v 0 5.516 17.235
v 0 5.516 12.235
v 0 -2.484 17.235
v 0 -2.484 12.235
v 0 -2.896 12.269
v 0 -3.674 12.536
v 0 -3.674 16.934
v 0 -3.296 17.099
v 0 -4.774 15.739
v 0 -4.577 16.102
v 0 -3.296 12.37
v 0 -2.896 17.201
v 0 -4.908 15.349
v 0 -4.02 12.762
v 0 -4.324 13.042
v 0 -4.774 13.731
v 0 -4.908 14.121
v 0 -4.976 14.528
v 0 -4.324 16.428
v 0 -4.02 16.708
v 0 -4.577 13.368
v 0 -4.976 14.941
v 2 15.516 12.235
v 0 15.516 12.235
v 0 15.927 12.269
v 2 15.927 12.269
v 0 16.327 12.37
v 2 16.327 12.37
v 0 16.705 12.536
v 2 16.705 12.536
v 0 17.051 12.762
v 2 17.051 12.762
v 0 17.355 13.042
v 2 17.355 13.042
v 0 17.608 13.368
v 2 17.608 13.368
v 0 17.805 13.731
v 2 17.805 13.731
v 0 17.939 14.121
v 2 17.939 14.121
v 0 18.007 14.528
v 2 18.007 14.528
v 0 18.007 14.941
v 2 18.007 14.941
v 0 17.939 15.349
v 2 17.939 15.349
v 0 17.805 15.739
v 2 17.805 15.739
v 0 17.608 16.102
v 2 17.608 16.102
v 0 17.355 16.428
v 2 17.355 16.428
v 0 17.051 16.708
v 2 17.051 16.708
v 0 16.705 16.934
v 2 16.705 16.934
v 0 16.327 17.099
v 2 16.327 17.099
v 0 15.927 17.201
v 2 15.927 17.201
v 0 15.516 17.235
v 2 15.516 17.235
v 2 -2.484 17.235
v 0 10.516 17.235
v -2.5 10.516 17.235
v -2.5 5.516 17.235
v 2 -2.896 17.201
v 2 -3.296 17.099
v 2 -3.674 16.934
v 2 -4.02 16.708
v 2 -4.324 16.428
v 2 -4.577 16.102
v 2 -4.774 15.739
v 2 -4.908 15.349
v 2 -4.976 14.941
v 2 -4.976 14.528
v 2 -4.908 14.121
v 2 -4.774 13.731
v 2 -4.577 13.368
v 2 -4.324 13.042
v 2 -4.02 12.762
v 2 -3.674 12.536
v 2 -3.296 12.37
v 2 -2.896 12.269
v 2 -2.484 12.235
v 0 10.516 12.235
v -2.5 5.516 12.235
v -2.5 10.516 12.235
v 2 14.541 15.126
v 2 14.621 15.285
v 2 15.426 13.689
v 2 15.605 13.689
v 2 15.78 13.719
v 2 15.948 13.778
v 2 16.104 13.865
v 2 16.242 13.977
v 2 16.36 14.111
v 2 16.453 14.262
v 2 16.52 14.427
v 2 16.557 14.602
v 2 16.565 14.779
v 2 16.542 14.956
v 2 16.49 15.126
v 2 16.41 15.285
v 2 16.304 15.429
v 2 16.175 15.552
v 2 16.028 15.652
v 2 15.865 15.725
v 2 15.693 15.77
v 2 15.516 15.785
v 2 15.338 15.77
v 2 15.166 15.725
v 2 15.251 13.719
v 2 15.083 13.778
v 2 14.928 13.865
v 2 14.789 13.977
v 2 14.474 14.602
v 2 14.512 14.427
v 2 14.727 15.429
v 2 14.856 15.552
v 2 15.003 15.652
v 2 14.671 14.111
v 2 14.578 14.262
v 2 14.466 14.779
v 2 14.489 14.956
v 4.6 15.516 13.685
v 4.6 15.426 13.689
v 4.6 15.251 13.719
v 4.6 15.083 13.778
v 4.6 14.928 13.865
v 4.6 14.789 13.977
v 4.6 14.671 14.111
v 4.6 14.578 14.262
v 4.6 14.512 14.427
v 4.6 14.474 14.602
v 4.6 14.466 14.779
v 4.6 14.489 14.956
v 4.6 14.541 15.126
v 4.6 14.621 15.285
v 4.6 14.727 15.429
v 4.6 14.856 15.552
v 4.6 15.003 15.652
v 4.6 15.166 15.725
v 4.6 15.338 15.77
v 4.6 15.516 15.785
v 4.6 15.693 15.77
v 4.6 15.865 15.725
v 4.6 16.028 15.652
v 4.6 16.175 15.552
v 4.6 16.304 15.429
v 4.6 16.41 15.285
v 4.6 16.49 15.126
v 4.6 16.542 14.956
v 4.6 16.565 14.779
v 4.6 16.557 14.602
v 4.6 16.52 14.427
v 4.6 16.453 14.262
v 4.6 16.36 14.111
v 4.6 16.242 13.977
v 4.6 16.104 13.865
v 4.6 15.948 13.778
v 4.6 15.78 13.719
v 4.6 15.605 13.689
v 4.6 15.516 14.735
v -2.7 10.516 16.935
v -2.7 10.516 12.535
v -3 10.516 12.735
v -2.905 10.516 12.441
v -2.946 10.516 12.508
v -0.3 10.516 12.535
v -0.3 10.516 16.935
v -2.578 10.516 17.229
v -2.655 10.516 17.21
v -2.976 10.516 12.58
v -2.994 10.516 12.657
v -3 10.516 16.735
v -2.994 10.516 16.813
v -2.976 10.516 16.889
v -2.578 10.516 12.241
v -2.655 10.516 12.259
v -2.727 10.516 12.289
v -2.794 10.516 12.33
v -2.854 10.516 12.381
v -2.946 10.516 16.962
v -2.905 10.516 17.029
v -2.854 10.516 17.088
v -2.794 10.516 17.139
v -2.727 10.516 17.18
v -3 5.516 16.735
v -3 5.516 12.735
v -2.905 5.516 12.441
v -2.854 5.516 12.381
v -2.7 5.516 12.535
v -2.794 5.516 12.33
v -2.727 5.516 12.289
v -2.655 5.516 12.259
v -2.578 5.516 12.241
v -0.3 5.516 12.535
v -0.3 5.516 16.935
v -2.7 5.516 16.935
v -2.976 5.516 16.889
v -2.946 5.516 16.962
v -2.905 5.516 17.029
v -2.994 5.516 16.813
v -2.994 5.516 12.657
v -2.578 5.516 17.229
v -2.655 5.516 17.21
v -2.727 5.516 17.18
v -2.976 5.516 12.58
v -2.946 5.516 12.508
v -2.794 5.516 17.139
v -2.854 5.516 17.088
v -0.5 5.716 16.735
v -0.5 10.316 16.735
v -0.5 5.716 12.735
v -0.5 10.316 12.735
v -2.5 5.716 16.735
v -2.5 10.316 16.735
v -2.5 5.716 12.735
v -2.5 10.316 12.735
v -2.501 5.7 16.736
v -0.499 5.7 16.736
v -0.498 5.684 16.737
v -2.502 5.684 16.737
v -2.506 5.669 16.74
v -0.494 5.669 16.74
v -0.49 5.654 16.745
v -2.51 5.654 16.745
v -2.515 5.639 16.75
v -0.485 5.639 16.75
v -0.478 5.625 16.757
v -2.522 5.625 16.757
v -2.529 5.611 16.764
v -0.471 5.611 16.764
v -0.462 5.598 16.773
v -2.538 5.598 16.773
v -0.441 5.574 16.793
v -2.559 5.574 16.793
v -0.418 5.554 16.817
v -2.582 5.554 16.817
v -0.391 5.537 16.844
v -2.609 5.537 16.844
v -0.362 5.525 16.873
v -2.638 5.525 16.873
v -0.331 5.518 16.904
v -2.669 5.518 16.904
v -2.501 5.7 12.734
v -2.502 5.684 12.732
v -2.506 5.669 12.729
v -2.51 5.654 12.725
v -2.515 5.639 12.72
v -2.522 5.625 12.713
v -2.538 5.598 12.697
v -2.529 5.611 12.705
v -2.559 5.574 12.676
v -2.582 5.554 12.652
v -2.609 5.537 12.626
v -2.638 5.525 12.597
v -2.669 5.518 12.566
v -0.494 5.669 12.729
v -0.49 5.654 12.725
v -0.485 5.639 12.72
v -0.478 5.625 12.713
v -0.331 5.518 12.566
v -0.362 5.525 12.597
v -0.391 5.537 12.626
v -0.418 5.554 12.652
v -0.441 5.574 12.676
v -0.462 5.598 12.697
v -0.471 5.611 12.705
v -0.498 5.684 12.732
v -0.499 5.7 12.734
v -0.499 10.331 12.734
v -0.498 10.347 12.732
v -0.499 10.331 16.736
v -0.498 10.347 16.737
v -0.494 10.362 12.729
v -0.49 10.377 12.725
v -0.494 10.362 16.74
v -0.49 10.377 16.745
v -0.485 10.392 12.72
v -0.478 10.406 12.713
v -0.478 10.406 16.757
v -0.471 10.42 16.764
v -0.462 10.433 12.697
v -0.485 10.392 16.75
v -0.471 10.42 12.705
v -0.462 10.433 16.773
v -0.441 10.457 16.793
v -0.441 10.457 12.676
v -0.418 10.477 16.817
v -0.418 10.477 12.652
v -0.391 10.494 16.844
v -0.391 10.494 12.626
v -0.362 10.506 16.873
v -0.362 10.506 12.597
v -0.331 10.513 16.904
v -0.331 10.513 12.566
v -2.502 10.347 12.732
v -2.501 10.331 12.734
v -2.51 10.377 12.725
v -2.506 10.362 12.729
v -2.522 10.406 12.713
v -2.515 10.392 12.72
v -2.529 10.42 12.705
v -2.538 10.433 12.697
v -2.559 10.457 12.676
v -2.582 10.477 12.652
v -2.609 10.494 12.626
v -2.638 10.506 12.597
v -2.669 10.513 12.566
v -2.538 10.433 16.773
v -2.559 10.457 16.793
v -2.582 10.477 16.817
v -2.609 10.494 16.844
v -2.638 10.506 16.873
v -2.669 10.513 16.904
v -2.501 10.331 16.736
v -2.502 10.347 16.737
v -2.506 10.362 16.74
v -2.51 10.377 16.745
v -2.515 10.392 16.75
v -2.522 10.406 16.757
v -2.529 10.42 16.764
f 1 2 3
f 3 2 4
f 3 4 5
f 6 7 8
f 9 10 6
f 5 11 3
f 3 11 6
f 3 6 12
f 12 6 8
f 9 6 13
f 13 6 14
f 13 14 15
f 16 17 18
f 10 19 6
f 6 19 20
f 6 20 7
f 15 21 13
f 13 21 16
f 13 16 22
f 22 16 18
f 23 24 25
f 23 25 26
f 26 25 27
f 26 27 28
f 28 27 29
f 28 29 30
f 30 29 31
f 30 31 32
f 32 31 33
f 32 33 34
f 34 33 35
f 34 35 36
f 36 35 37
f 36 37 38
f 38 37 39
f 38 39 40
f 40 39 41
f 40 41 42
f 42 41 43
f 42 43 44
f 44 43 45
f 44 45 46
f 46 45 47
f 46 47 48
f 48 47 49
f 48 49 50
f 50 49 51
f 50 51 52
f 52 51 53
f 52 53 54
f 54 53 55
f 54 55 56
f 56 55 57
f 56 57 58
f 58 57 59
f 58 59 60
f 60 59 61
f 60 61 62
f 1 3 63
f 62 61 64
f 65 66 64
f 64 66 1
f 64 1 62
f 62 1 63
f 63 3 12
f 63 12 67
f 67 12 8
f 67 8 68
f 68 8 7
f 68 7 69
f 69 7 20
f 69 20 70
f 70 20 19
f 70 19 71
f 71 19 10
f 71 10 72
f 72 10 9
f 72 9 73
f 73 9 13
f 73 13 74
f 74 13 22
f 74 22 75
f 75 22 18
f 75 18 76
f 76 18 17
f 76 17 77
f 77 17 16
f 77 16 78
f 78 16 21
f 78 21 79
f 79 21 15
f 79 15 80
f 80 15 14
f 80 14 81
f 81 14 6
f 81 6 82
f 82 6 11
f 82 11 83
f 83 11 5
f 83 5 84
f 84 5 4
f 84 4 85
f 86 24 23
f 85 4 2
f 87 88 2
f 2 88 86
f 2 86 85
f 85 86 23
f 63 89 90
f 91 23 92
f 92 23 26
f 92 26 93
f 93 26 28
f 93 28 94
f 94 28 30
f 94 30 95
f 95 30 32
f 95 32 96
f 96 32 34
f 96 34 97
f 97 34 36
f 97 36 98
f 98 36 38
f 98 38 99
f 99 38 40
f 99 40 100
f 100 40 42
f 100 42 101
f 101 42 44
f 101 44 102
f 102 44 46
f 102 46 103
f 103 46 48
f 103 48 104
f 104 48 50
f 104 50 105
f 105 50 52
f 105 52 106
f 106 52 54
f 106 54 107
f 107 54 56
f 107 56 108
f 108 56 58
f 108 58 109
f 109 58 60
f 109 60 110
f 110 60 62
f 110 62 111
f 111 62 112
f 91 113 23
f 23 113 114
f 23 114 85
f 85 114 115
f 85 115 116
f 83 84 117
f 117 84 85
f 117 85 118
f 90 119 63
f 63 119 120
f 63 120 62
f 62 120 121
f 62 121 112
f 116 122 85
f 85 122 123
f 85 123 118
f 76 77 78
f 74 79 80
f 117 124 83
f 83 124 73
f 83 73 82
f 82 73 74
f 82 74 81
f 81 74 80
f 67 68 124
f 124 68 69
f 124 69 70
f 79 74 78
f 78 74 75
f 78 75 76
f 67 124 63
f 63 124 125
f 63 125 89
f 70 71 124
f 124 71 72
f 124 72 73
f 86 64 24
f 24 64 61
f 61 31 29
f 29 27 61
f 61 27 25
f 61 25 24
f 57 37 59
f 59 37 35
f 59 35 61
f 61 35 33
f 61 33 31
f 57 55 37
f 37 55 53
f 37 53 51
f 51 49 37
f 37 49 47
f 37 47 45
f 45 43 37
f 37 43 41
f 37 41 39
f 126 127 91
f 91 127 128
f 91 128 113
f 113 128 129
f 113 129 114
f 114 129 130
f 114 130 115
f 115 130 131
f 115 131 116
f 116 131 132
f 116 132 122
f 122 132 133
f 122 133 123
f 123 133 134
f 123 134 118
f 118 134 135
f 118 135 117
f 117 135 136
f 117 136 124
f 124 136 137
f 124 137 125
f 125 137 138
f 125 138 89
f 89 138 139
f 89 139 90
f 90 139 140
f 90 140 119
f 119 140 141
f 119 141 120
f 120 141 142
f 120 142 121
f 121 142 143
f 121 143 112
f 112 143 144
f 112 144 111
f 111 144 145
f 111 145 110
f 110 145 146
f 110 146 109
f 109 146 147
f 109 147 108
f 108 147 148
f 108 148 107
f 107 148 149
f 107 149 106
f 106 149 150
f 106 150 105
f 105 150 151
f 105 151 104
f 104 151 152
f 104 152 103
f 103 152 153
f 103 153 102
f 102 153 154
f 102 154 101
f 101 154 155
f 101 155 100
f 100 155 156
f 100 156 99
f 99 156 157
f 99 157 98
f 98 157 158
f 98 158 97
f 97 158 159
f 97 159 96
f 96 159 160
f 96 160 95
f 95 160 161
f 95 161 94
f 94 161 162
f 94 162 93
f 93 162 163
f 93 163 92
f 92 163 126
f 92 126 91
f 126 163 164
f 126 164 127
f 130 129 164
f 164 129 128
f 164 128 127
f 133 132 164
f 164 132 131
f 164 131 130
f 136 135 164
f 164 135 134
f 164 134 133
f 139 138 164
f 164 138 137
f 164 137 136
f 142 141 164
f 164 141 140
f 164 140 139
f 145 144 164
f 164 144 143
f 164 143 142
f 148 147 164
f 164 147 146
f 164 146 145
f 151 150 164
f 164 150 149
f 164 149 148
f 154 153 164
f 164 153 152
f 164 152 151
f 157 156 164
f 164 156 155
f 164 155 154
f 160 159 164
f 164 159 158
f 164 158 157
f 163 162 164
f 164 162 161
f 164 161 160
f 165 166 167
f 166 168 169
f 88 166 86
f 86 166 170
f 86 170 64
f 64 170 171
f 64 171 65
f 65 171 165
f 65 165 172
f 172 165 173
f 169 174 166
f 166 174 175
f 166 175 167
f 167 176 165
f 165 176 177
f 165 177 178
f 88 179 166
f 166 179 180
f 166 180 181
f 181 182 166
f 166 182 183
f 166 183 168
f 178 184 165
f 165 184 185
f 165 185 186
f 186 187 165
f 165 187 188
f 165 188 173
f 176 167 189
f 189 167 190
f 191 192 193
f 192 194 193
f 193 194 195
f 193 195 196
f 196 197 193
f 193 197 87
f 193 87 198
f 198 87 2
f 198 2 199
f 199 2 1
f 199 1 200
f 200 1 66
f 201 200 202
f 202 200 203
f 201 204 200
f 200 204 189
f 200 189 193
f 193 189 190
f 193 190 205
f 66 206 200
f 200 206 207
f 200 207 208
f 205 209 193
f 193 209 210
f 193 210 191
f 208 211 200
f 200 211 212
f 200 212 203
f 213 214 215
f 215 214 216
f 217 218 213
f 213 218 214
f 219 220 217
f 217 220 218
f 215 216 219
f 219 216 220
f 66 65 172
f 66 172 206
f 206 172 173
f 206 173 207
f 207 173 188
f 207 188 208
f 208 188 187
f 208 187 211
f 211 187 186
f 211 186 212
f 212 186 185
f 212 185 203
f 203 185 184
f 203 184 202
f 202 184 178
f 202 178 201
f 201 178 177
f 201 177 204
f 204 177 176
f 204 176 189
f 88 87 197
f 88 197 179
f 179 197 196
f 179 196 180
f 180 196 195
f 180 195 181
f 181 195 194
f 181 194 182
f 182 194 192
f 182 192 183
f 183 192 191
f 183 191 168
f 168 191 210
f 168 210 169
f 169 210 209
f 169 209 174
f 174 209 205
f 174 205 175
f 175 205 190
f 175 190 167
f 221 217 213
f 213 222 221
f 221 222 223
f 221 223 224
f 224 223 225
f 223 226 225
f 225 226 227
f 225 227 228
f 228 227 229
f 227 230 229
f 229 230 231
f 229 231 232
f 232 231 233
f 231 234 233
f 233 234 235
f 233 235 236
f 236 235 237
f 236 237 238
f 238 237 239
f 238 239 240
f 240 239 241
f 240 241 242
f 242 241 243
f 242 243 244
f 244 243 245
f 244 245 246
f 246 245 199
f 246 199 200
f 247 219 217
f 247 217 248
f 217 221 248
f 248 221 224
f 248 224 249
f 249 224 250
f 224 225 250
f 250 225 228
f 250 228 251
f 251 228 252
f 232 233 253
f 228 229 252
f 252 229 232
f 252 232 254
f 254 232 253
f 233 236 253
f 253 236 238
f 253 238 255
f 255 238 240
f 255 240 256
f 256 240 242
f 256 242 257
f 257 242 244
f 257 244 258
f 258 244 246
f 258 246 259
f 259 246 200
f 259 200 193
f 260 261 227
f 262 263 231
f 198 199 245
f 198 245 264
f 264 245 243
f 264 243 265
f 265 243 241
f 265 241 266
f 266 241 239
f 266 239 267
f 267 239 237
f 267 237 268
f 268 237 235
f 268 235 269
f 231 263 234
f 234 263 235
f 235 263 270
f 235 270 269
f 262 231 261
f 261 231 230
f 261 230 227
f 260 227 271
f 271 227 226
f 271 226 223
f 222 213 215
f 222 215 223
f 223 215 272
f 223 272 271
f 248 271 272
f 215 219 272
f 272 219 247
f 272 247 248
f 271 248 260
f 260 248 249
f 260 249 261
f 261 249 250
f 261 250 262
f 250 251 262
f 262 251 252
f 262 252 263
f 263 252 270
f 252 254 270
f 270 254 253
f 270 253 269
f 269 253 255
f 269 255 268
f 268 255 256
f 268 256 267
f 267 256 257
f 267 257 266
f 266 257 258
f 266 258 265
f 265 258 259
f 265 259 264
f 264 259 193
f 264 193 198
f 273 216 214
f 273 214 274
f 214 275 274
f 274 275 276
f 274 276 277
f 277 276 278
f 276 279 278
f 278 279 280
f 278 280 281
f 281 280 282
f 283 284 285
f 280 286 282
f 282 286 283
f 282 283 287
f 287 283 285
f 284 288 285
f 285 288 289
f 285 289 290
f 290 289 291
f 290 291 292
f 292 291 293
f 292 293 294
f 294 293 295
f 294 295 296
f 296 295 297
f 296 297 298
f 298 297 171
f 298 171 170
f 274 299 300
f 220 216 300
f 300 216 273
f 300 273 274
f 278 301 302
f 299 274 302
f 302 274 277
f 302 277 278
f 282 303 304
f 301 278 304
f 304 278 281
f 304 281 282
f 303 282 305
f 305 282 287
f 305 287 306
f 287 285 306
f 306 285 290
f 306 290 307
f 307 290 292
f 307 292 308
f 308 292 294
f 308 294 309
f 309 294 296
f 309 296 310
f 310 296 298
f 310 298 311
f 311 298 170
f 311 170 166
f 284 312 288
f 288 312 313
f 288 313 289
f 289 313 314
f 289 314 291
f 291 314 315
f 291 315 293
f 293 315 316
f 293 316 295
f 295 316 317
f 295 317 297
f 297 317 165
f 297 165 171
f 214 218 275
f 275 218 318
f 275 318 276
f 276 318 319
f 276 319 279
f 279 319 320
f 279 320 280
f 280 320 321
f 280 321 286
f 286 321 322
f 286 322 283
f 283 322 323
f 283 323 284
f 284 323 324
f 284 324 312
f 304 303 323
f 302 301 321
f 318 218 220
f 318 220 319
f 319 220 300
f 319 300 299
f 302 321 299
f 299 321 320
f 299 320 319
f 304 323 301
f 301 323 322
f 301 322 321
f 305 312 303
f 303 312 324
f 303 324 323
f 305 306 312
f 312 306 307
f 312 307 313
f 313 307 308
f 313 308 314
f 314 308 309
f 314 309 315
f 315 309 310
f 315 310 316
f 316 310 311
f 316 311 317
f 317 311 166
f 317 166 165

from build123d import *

# Parameters (mm, degrees)
BOSS_EXTRUDE1_DEPTH = 2
SKETCH2_R           = 1.05
BOSS_EXTRUDE2_DEPTH = 2.6
SKETCH3_W           = 3
SKETCH3_H           = 5
BOSS_EXTRUDE3_DEPTH = 5
SKETCH4_W           = 2
SKETCH4_H           = 4
CUT_EXTRUDE1_DEPTH  = 24.631588809
FILLET1_R           = 0.5
FILLET2_R           = 0.2


with BuildPart() as part:
    # Sketch1 → Boss-Extrude1 (new body)
    with BuildSketch(Plane(origin=(0, 0, 0), x_dir=(0, 0, -1), z_dir=(1, 0, 0))):
        with BuildLine():
            Line((-17.23490614, 15.515536013), (-17.23490614, -2.484463987))
            ThreePointArc((-17.23490614, -2.484463987), (-14.73490614, -4.984463987), (-12.23490614, -2.484463987))
            Line((-12.23490614, -2.484463987), (-12.23490614, 15.515536013))
            ThreePointArc((-12.23490614, 15.515536013), (-14.73490614, 18.015536013), (-17.23490614, 15.515536013))
        make_face()
    extrude(amount=BOSS_EXTRUDE1_DEPTH)

    # Sketch2 → Boss-Extrude2 (add)
    with BuildSketch(Plane(origin=(2, 0, 0), x_dir=(0, 0, -1), z_dir=(1, 0, 0))):
        with Locations(Location((-14.73490614, 15.515536013, 0), (0, 0, 180))):
            Circle(SKETCH2_R)
    extrude(amount=BOSS_EXTRUDE2_DEPTH)

    # Sketch3 → Boss-Extrude3 (add)
    with BuildSketch(Plane(origin=(0, 0, 12.23490614), x_dir=(-1, 0, 0), z_dir=(0, 0, -1))):
        with Locations((1.5, 8.015536013)):
            Rectangle(SKETCH3_W, SKETCH3_H)
    extrude(amount=-BOSS_EXTRUDE3_DEPTH)

    # Sketch4 → Cut-Extrude1 (cut, through all)
    with BuildSketch(Plane(origin=(0, 10.515536013, 0), x_dir=(1, 0, 0), z_dir=(0, 1, 0))):
        with Locations((-1.5, -14.73490614)):
            Rectangle(SKETCH4_W, SKETCH4_H)
    extrude(amount=-CUT_EXTRUDE1_DEPTH, mode=Mode.SUBTRACT)

    # Fillet1
    fillet1_edges = [part.edges().sort_by_distance(p)[0] for p in [
        (-3, 8.015536013, 12.23490614),
        (-3, 8.015536013, 17.23490614),
    ]]
    fillet(fillet1_edges, radius=FILLET1_R)

    # Fillet2
    fillet2_edges = [part.edges().sort_by_distance(p)[0] for p in [
        (-1.5, 5.515536013, 12.73490614),
        (-2.5, 5.515536013, 14.73490614),
        (-1.5, 5.515536013, 16.73490614),
        (-0.5, 5.515536013, 14.73490614),
        (-0.5, 10.515536013, 14.73490614),
        (-1.5, 10.515536013, 12.73490614),
        (-2.5, 10.515536013, 14.73490614),
        (-1.5, 10.515536013, 16.73490614),
    ]]
    fillet(fillet2_edges, radius=FILLET2_R)


solid = part.part
